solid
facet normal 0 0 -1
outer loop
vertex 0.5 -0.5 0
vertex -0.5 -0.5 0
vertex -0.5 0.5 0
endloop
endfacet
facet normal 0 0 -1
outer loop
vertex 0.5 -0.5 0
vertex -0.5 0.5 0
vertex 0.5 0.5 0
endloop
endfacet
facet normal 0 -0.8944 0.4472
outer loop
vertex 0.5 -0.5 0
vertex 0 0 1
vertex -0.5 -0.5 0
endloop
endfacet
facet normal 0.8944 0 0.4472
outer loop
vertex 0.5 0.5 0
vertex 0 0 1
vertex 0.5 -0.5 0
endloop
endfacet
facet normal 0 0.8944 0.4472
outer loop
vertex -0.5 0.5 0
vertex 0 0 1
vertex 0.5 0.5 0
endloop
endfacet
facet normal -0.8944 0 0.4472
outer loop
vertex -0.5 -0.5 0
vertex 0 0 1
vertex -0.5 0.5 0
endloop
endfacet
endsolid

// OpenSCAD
// Square Pyramid for Stacks of Shapes
// by Slashee the Cow

$fn = 128;
linear_extrude(1, scale = 0)
    square(1, center = true);
